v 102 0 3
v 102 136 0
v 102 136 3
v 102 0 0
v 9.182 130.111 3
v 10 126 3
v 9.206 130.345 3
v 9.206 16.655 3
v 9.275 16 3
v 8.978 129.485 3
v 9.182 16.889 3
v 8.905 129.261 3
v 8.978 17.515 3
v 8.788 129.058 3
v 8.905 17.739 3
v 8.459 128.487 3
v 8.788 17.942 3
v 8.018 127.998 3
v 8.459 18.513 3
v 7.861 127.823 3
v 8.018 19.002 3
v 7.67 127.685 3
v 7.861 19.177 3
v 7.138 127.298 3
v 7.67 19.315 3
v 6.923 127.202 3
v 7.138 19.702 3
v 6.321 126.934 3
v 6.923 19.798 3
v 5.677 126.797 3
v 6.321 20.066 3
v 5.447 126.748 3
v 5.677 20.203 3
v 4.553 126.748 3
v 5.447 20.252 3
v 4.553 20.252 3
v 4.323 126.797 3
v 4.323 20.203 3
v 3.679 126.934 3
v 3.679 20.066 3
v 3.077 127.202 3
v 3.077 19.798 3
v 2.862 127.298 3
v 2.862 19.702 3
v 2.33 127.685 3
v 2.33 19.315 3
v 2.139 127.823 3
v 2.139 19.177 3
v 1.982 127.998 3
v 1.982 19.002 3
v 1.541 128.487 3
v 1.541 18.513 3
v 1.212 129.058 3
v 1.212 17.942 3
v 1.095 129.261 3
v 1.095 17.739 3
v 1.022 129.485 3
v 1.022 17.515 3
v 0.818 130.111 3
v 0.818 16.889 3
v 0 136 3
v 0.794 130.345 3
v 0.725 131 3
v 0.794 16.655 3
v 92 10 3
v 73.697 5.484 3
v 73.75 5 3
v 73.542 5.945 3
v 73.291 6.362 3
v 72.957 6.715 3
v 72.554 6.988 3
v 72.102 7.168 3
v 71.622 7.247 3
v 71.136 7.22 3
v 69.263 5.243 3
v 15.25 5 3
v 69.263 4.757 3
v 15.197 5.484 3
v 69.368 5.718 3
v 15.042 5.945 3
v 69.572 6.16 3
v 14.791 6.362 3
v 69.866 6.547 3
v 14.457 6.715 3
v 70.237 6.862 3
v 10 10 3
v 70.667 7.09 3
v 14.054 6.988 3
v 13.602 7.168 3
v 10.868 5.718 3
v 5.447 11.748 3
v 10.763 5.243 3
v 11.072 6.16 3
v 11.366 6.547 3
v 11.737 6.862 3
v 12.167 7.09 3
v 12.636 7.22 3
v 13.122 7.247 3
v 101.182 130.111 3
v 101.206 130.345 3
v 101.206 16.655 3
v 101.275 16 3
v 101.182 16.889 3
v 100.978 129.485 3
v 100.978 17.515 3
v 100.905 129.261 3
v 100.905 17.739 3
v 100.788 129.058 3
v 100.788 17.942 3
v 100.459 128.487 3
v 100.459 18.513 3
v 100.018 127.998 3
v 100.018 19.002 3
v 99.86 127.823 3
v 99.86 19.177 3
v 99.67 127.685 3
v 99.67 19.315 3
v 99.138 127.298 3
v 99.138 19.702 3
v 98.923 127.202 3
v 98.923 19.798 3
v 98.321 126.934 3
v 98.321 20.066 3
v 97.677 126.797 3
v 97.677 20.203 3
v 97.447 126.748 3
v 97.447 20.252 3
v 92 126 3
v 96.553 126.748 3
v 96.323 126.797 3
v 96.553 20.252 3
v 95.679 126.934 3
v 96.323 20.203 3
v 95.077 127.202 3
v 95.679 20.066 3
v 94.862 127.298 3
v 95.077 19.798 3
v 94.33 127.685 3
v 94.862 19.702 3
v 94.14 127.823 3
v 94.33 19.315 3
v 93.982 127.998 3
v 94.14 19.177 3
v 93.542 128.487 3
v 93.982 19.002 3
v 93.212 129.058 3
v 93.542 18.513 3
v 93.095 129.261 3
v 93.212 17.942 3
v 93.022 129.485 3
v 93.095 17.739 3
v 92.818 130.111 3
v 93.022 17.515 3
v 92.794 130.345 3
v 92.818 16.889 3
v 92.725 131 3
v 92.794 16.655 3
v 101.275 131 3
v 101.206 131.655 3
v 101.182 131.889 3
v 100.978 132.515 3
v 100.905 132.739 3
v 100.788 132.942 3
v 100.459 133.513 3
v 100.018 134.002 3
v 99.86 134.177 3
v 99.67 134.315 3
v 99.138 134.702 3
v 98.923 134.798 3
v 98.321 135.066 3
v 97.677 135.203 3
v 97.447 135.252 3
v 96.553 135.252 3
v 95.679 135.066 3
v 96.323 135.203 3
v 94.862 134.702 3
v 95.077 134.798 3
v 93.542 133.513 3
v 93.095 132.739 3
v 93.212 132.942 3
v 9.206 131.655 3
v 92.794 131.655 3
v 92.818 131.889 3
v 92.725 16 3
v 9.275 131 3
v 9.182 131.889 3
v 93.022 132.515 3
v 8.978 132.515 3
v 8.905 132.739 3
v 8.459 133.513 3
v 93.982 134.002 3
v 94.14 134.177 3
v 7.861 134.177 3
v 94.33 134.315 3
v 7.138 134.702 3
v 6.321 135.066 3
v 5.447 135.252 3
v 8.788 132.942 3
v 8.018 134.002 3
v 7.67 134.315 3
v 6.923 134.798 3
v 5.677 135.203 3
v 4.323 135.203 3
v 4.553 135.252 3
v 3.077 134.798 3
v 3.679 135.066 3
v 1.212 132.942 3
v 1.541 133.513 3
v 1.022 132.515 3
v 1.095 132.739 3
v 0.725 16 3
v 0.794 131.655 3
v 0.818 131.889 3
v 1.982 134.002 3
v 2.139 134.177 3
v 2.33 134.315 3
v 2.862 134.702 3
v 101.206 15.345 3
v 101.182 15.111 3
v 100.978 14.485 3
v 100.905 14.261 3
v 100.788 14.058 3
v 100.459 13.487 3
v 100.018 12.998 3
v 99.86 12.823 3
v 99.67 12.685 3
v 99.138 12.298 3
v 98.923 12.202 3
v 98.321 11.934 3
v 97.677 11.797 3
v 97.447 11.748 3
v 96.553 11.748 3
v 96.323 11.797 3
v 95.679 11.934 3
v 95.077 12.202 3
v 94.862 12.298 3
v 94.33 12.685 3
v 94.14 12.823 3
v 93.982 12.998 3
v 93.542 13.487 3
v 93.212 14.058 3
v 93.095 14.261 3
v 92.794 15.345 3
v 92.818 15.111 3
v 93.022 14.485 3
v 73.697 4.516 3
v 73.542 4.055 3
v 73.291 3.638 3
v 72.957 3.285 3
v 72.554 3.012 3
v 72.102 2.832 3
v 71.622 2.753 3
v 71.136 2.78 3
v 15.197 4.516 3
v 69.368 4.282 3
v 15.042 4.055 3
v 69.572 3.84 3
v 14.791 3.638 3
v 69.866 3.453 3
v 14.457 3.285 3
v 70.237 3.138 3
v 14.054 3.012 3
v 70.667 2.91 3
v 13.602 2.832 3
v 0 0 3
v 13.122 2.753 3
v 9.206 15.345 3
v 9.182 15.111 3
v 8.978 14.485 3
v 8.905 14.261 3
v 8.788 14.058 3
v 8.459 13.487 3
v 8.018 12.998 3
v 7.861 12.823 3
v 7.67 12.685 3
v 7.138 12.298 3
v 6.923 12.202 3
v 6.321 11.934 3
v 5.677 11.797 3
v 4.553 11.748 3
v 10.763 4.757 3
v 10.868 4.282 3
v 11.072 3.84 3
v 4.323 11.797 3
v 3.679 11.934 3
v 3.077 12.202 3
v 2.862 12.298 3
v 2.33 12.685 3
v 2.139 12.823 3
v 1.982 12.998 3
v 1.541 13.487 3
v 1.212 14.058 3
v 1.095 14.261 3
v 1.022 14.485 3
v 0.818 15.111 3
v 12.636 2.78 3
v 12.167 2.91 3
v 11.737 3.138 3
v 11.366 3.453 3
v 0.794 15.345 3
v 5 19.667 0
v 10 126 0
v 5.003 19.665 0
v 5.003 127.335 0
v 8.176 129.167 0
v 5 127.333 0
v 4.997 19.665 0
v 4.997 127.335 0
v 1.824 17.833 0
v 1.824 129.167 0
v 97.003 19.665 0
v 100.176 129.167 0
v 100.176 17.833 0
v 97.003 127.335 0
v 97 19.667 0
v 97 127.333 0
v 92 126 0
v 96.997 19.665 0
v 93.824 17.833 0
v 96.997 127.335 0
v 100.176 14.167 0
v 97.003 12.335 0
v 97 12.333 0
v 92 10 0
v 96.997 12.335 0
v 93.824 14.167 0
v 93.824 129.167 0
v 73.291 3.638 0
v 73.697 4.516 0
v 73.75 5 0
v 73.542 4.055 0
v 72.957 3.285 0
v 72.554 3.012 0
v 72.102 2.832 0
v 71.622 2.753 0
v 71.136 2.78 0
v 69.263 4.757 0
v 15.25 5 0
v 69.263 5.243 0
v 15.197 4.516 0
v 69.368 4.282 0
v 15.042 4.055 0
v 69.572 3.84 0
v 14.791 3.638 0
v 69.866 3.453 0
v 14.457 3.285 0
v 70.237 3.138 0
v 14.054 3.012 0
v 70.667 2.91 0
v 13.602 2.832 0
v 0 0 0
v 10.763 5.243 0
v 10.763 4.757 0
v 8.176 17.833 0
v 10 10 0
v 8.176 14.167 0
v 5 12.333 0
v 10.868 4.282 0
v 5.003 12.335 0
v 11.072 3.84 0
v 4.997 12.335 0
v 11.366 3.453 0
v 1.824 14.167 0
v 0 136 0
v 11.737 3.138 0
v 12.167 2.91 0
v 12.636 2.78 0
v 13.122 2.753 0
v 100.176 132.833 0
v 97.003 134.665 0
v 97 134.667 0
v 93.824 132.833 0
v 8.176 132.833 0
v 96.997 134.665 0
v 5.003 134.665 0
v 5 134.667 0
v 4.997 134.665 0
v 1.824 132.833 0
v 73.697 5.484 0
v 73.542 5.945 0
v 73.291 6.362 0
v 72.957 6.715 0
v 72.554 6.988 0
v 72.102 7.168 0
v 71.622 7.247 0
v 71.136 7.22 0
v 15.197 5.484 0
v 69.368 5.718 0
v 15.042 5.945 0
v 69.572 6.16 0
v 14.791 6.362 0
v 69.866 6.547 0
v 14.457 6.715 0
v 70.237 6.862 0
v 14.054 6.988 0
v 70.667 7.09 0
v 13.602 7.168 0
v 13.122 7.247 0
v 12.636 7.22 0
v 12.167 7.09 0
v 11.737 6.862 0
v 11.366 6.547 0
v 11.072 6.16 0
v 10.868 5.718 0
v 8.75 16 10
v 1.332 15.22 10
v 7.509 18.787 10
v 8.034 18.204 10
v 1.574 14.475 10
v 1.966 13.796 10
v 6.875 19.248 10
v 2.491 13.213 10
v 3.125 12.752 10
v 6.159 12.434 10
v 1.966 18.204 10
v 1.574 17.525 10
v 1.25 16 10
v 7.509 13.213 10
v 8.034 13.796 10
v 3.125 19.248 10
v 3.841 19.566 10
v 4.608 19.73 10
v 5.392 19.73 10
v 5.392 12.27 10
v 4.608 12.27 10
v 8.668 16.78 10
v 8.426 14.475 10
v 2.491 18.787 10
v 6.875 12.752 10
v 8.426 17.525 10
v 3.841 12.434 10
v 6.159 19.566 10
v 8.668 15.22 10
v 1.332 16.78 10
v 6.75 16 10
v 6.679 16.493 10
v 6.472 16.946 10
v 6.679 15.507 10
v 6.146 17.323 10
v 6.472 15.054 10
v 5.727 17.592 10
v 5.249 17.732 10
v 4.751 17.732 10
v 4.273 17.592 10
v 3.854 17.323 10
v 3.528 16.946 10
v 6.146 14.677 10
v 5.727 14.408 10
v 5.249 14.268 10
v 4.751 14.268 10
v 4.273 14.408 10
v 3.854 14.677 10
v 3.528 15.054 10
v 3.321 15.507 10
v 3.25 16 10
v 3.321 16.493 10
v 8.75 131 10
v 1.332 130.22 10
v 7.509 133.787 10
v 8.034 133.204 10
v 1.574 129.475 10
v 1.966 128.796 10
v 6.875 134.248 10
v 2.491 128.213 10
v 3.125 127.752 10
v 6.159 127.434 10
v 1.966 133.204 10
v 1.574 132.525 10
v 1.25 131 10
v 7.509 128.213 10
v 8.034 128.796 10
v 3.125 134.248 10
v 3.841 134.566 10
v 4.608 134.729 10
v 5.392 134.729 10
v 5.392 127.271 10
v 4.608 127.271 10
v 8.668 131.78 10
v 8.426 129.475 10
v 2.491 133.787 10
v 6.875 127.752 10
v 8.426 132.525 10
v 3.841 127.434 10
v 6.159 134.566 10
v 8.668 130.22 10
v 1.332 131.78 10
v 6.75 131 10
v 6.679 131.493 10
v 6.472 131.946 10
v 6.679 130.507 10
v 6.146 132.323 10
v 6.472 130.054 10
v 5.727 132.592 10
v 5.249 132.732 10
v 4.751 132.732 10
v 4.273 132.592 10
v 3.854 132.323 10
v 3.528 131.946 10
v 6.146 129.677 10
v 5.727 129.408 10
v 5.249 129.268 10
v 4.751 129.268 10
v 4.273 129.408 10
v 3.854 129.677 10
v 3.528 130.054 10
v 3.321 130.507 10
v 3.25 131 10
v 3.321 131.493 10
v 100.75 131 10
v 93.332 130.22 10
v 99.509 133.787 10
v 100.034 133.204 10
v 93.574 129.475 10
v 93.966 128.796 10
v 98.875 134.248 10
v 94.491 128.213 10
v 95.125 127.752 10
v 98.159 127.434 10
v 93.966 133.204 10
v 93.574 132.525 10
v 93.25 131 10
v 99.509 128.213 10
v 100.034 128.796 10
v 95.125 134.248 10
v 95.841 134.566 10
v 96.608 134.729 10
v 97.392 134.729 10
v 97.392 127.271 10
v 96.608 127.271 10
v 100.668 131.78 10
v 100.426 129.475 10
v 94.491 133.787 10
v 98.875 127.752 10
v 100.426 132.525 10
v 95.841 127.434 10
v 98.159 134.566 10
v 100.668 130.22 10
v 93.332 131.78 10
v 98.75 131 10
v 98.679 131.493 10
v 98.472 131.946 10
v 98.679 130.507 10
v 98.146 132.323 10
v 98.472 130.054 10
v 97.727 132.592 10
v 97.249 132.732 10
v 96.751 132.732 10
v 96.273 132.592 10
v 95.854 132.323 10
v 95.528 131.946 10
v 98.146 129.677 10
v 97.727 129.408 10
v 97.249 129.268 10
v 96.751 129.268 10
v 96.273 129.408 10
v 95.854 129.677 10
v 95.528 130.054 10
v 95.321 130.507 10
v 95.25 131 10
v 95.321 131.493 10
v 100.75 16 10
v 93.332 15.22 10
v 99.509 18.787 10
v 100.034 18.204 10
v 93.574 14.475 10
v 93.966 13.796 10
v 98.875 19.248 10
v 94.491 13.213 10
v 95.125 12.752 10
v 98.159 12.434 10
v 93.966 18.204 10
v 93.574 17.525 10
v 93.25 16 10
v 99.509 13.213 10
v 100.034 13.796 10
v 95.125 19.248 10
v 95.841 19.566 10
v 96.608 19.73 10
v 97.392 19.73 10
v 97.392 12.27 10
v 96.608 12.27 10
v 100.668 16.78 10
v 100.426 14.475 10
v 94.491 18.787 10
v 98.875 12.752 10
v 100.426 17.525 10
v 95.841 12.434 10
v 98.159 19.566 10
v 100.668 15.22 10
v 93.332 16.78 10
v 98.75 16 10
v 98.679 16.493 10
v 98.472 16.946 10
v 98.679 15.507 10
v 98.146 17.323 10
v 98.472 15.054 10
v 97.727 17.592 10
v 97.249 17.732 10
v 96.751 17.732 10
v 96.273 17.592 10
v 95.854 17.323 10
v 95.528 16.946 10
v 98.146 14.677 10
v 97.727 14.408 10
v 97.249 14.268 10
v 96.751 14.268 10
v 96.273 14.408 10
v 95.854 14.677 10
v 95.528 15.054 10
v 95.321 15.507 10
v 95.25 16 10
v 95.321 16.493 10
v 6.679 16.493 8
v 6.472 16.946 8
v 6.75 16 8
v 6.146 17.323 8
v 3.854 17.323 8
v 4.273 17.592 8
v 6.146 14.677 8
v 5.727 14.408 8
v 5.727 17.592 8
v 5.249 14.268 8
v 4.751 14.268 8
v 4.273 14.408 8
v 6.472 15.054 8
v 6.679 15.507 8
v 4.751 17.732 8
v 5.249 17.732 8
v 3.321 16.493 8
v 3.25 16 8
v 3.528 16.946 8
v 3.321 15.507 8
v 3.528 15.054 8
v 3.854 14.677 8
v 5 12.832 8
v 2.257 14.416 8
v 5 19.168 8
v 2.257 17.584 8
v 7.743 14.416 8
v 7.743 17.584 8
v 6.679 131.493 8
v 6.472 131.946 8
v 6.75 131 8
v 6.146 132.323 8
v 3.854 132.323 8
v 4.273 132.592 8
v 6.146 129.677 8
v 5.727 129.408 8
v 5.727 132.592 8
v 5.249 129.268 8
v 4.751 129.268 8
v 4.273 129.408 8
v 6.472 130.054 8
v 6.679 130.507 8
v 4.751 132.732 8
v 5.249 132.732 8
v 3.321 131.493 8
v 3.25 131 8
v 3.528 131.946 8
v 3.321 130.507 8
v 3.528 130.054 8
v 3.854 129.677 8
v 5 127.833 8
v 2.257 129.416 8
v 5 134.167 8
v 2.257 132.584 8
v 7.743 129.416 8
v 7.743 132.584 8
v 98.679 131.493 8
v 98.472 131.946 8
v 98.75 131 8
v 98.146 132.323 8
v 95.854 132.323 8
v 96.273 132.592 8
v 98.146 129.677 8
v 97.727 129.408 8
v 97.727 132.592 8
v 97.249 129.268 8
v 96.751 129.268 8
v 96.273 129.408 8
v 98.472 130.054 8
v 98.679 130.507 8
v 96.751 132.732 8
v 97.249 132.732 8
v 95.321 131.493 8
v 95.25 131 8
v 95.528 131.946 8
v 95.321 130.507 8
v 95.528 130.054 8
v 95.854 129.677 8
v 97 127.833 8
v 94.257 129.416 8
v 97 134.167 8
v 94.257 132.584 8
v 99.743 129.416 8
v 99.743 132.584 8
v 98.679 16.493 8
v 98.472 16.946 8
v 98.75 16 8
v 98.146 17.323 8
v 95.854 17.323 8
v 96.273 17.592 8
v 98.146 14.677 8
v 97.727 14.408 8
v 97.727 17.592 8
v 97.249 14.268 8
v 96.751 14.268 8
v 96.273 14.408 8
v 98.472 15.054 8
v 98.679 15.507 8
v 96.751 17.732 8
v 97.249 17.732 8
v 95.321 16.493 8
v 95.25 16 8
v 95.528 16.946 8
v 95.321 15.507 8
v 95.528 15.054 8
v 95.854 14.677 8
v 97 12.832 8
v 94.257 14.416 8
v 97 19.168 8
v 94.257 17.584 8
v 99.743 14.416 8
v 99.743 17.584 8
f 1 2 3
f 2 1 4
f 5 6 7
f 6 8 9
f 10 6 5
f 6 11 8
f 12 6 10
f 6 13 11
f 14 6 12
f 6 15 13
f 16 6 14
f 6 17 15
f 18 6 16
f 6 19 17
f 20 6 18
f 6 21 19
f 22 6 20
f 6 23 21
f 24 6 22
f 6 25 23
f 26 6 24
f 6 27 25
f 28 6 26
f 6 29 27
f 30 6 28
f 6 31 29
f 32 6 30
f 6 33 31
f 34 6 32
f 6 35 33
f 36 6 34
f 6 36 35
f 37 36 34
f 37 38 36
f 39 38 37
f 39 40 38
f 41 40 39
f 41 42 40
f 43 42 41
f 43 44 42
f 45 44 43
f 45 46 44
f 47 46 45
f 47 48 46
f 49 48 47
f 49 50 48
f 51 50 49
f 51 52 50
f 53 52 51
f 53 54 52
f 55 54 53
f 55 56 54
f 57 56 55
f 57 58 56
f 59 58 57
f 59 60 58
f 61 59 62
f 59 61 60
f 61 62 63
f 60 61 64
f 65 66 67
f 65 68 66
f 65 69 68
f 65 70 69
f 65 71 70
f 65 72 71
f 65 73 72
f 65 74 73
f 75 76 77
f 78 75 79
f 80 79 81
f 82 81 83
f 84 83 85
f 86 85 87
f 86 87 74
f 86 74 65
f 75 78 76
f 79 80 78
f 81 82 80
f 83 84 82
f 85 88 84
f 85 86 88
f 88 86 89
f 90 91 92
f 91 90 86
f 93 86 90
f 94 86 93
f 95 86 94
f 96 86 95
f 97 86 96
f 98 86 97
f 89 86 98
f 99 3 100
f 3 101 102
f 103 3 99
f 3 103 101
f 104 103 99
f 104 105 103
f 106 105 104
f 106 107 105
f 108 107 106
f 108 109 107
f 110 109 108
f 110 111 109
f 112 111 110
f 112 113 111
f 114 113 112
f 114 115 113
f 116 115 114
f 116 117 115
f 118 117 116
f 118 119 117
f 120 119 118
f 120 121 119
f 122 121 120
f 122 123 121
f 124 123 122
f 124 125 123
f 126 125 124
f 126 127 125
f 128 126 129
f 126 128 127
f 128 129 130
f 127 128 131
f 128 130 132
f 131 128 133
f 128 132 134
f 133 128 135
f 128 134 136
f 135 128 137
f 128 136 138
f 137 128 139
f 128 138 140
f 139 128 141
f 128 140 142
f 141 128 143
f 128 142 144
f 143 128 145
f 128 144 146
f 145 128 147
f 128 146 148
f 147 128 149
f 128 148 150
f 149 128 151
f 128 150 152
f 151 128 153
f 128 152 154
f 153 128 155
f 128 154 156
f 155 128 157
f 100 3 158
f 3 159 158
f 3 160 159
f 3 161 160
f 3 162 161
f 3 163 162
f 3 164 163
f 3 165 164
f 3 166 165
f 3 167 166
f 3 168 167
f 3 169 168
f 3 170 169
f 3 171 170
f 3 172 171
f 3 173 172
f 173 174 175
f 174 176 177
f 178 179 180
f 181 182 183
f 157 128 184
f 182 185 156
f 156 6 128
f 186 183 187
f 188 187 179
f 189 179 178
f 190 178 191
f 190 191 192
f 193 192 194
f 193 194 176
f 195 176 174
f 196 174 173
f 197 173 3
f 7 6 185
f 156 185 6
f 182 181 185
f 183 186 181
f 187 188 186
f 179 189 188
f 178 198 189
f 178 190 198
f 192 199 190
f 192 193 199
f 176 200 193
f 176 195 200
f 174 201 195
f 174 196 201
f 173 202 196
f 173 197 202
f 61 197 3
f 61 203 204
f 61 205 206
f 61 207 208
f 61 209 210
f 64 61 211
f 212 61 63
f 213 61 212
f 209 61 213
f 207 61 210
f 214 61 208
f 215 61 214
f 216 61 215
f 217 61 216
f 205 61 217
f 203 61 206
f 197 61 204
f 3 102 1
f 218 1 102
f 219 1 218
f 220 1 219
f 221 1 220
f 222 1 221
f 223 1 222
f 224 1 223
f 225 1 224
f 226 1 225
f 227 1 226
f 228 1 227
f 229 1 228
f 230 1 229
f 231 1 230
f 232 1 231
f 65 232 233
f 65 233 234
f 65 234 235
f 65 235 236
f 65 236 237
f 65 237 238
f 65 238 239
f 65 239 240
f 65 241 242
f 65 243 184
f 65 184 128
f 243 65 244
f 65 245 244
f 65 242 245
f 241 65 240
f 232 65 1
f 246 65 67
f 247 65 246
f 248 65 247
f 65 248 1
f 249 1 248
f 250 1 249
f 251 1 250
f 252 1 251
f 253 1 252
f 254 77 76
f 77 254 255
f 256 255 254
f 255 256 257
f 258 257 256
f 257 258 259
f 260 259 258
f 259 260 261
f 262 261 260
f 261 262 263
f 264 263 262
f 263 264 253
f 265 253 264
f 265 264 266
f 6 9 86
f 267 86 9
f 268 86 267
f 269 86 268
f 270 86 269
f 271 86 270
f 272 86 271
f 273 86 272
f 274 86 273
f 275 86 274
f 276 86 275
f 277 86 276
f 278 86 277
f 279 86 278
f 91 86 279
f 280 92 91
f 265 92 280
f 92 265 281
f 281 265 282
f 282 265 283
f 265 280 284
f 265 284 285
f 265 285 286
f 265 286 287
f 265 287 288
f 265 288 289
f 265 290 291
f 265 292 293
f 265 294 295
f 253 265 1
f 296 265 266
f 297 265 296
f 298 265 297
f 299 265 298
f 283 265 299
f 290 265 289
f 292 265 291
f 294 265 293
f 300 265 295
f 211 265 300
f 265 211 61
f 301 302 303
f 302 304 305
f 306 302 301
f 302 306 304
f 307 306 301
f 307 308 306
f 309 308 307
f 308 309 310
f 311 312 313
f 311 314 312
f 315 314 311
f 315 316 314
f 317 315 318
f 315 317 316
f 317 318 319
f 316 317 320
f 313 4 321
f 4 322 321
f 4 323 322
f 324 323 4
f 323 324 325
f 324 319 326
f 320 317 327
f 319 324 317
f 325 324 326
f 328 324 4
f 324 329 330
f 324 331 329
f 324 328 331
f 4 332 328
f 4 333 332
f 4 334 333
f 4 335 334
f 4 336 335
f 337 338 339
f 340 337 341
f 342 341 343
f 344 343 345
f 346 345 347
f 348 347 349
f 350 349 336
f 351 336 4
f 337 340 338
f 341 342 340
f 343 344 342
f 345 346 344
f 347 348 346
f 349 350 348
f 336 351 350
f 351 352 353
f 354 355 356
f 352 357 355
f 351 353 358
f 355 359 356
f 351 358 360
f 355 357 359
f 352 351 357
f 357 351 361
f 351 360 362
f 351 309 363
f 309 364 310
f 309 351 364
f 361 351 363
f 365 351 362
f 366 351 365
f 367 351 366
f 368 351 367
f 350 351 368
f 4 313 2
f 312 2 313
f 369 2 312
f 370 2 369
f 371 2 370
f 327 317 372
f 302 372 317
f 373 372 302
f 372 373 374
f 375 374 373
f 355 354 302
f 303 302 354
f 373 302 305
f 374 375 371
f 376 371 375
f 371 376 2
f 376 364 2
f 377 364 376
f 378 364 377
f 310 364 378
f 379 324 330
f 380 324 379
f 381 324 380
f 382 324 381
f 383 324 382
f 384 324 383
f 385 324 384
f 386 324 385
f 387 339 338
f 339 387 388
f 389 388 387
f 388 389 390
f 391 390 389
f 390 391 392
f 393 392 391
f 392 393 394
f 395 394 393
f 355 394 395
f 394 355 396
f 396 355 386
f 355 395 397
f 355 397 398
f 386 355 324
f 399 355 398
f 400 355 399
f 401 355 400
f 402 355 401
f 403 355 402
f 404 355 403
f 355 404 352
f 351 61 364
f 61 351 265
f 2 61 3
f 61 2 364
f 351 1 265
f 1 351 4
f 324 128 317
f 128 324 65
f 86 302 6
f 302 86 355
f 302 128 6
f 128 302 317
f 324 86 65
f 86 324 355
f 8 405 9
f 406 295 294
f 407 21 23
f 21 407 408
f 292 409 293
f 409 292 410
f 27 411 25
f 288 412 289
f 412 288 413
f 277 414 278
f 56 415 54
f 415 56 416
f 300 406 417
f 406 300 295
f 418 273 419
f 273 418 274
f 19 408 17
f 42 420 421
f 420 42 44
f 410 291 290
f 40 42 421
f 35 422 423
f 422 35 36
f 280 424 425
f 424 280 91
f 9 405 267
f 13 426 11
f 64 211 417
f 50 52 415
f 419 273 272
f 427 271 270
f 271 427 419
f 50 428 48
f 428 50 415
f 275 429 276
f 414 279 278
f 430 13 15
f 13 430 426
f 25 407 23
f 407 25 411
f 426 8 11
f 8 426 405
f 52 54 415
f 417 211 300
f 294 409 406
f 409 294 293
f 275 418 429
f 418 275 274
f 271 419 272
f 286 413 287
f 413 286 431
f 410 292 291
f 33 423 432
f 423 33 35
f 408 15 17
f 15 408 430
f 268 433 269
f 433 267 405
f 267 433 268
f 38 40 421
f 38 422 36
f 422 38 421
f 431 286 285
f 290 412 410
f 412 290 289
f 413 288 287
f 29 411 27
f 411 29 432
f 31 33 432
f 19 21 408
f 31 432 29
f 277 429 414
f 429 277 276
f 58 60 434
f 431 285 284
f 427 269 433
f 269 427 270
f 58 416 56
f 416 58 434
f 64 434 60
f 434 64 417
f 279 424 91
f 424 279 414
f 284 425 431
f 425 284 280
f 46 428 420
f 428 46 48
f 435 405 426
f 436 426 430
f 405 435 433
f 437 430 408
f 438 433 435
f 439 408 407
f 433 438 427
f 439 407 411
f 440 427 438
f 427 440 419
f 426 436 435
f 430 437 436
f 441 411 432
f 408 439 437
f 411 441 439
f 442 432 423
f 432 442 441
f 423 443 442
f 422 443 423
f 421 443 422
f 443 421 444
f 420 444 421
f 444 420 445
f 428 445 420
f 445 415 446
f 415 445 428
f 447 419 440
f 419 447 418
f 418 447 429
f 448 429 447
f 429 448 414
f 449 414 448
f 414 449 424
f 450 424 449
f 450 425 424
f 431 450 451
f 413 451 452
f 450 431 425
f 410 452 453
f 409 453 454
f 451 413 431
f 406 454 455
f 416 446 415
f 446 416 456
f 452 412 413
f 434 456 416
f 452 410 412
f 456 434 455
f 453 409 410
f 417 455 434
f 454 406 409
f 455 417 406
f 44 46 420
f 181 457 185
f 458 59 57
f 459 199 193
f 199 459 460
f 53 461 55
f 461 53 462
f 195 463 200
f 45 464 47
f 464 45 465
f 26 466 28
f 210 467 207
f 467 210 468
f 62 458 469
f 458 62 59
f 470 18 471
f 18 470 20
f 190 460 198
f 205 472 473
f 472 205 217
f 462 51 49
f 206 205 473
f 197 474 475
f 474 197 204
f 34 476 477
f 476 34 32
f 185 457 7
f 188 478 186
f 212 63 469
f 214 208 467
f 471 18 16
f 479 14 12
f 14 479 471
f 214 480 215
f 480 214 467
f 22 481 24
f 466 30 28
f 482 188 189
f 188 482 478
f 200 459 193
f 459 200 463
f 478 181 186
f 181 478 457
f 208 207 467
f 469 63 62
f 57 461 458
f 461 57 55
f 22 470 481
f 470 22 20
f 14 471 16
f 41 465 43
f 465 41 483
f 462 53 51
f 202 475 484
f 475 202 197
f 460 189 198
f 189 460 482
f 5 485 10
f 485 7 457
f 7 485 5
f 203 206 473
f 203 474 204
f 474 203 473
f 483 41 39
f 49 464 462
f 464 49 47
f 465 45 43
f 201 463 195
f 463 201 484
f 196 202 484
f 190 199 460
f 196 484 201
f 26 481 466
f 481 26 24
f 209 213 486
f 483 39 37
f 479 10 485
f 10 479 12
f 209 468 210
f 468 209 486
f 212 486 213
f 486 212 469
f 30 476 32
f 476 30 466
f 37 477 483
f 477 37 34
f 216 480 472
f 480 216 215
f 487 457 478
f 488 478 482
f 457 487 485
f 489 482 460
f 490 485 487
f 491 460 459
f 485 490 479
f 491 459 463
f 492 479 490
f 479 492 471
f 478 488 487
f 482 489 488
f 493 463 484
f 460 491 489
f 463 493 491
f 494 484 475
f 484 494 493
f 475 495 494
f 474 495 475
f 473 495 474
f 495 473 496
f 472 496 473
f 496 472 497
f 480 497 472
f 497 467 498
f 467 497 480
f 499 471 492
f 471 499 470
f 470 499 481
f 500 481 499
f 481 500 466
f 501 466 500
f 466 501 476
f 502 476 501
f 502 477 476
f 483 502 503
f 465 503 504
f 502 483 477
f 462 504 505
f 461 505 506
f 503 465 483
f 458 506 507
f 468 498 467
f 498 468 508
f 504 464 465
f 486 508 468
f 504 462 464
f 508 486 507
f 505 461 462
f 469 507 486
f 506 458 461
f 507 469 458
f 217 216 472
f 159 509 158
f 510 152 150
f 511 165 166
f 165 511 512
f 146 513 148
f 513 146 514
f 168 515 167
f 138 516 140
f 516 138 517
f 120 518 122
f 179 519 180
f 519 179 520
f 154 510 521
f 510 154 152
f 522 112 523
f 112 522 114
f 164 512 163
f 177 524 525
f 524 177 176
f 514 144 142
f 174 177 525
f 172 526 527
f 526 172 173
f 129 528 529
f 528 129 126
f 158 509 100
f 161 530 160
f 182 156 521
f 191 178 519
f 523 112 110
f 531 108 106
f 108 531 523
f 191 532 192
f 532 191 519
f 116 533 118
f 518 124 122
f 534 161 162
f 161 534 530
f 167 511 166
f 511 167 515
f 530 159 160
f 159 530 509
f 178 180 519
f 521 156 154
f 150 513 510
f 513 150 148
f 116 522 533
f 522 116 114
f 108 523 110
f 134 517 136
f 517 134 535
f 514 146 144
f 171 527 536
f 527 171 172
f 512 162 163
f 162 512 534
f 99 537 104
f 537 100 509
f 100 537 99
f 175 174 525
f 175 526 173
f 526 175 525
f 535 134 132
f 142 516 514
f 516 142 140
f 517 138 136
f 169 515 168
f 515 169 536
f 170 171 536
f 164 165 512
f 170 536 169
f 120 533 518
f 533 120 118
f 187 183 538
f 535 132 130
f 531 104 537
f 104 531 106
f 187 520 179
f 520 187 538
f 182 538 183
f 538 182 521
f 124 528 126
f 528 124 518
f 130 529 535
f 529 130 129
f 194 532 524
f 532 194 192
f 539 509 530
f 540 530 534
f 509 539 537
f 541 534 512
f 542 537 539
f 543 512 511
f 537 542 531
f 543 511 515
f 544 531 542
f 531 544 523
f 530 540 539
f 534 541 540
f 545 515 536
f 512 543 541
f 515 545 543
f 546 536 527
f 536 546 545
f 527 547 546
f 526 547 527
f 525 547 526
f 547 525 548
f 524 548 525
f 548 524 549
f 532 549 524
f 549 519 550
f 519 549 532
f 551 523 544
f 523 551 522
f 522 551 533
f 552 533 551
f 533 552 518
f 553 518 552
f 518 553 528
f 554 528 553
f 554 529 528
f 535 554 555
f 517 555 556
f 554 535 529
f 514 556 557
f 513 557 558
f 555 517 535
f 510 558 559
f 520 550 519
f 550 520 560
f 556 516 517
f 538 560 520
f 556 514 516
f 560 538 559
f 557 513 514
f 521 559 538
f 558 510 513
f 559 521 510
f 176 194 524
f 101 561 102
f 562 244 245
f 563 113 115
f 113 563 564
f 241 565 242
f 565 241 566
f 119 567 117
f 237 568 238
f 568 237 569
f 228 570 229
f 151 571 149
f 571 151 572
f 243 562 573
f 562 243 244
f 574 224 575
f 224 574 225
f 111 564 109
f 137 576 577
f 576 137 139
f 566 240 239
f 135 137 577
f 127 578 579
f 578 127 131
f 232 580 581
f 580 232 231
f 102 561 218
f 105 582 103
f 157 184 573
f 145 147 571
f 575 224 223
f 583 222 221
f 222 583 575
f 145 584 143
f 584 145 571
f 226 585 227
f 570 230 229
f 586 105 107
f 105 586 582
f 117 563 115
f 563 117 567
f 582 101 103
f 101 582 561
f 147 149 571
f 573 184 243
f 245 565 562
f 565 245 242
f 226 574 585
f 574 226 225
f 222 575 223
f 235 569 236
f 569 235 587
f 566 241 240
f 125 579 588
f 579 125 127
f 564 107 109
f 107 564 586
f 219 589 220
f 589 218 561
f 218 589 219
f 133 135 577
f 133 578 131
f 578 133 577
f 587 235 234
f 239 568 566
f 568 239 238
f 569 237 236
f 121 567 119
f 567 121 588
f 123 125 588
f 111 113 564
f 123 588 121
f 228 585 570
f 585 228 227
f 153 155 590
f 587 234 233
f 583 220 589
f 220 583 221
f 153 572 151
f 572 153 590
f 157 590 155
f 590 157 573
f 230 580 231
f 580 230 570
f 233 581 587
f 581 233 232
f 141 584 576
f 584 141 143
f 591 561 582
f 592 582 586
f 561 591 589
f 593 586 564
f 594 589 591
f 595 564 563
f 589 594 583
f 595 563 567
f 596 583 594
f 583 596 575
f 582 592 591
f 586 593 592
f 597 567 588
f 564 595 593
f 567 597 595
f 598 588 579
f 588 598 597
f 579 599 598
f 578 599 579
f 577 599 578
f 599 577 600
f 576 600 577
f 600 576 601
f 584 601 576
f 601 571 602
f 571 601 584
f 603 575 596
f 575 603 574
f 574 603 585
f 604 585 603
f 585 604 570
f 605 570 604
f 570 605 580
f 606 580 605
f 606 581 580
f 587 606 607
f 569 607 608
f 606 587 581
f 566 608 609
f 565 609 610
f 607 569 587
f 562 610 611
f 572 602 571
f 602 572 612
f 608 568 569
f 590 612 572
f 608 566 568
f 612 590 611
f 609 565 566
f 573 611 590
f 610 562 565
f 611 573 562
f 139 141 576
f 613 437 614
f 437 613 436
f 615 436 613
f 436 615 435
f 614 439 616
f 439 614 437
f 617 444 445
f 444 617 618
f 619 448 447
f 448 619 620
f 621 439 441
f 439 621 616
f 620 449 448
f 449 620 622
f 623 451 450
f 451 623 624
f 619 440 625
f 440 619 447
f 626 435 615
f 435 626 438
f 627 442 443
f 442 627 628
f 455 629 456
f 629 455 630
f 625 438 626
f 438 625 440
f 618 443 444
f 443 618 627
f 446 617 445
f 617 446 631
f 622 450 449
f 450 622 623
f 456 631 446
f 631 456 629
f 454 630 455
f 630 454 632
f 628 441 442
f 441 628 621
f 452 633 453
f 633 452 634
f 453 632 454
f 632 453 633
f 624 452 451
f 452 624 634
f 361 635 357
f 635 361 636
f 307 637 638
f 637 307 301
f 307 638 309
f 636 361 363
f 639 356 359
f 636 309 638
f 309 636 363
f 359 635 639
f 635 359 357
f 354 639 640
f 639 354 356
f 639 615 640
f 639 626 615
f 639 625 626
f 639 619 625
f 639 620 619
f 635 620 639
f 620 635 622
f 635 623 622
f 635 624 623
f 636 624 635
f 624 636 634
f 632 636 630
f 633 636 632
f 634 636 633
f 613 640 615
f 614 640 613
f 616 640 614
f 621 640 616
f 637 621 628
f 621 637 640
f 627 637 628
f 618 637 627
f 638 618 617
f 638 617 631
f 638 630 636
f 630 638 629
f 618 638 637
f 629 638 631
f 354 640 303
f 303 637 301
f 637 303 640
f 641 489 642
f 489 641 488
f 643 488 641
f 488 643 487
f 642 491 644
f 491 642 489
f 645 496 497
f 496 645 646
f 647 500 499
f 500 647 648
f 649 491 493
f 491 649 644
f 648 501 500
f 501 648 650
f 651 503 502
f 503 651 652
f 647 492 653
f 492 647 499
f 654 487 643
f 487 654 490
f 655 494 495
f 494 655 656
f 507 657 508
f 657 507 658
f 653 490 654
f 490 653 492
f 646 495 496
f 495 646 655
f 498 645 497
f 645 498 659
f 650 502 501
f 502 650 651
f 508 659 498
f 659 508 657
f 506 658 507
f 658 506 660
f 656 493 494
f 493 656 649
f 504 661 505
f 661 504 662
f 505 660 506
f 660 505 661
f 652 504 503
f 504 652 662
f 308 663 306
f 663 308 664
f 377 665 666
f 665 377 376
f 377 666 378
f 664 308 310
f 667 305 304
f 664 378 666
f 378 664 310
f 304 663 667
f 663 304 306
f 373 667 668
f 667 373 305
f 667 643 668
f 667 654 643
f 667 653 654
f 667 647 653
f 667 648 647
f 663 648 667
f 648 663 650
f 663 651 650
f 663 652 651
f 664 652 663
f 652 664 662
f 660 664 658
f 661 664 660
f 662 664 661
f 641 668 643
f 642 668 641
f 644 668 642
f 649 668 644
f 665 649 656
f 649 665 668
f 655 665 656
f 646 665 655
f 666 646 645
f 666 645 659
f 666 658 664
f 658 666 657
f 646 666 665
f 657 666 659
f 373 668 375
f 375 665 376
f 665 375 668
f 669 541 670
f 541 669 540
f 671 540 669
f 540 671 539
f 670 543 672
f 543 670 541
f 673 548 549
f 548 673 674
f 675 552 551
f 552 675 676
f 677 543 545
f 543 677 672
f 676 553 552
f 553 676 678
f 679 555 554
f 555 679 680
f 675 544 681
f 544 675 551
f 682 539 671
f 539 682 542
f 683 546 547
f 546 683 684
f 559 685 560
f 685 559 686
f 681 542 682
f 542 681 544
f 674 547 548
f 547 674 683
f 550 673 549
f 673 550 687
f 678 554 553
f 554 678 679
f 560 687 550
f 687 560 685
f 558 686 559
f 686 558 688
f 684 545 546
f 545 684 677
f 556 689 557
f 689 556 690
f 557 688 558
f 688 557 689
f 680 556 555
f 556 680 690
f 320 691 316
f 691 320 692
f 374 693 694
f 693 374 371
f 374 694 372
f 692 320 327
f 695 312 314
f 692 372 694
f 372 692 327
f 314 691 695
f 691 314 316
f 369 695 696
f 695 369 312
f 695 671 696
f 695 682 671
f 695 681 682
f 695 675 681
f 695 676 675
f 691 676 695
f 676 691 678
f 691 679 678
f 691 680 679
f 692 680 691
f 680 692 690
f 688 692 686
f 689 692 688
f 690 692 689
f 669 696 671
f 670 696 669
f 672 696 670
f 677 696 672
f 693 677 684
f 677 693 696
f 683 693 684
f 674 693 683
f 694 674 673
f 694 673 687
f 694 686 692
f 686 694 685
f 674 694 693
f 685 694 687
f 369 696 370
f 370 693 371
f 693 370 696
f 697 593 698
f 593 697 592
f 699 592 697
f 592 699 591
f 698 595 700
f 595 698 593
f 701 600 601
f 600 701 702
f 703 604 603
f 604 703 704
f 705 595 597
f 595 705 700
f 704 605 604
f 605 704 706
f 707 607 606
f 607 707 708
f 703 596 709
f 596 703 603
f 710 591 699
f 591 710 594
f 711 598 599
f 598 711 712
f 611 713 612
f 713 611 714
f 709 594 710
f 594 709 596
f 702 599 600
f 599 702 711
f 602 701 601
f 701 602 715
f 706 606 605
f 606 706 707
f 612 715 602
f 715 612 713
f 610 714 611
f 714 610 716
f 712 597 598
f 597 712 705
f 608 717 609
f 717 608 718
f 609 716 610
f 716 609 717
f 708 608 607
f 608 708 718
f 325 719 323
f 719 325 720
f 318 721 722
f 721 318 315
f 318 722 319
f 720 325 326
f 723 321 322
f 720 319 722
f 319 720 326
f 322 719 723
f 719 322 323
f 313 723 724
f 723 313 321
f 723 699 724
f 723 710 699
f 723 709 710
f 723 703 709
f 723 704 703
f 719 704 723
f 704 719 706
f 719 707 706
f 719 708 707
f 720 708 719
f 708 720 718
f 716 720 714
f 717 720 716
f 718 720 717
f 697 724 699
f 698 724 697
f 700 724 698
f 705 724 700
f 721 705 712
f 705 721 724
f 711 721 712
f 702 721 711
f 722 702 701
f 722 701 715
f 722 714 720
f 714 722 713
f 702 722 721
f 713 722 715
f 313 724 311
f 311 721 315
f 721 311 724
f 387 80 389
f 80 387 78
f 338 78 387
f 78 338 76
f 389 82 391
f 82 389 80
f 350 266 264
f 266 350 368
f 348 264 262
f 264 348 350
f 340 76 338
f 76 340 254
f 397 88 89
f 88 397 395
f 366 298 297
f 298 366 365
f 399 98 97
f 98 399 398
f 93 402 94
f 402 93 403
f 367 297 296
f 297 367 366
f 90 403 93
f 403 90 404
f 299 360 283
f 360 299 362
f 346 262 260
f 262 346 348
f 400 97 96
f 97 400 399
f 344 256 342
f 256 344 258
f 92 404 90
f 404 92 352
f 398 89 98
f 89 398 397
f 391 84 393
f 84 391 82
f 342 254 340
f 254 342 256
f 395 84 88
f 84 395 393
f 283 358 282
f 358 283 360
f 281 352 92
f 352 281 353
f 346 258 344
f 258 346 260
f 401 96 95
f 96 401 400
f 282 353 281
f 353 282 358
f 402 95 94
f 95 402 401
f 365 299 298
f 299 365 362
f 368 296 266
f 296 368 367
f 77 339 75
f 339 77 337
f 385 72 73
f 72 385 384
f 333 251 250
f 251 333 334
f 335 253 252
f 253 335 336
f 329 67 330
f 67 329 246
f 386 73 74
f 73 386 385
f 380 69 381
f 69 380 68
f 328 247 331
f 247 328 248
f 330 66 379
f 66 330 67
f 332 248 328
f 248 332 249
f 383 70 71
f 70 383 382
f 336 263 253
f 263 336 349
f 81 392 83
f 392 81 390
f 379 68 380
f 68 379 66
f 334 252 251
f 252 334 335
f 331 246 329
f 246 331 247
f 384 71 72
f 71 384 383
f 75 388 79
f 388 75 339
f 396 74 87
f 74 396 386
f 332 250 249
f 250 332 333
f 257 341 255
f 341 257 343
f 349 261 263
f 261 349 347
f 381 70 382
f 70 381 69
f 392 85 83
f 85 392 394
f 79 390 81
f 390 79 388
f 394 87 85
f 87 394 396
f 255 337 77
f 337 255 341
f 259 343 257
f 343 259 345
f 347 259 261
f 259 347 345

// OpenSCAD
// Holder for Duet2 Maestro board on side of M2 printer
//
// Copyright (C) 2020  Kevin O'Connor <kevin@koconnor.net>
//
// This file may be distributed under the terms of the GNU GPLv3 license.

// M2 side screw locations:
//  z=11.5mm: +0mm, +145mm; z=41: +10mm, +67.5mm; z=70mm: +96mm, +145mm
// screw hole is 4.6mm wide; m4 screw is 3.86mm wide; head is 6.96mm dia
// m3 hex nut is 5.4mm across; m3 screw is 2.88mm wide; head is 5.38mm dia

// Duet board is 123x100mm. Screws at:
//  4,4 ; 4,119 ; 96,119 ; 96,4

$fs = .5;
plate_height = 3;
plate_offset_x = 1;
plate_offset_y = 12;
plate_width = 100 + 2 * plate_offset_x;
plate_length = 123 + plate_offset_y + 1;
plate_border = 10;
standoff_height = 10;
standoff_top_width = 7.5;
standoff_bot_width = 9;
standoff_screw_dia = 3.5;
standoff_screw_hex = 6.235 + .1;
standoff_screw_positions = [ [4, 4], [4, 119], [96, 119], [96, 4] ];
printer_screw_dia = 4.5;
printer_screw_positions = [ [13, 5], [13 + 70 - 11.5, 5],
                            [13 + 41 - 11.5, 5 + 145 - 67.5] ];
CUT = 0.01;

//
// Back Plate
//

module back_plate() {
    module plate() {
        difference() {
            cube(size=[plate_width, plate_length, plate_height]);
            translate([plate_border, plate_border, -CUT])
                cube(size=[plate_width - 2*plate_border,
                           plate_length - 2*plate_border, plate_height + 2*CUT]);
        }
    }

    module screw_standoff(pos) {
        translate(pos)
            translate([plate_offset_x, plate_offset_y])
                cylinder(h=standoff_height, d1=standoff_bot_width,
                         d2=standoff_top_width);
    }

    module screwcut_standoff(pos) {
        module hex() {
            rotate([0, 0, 90])
                cylinder(h=standoff_height - 2 + CUT, d1=standoff_screw_hex + 1,
                         d2=standoff_screw_hex, $fn=6);
        }
        translate(pos)
            translate([plate_offset_x, plate_offset_y, -CUT]) {
                cylinder(h=standoff_height + 2*CUT, d=standoff_screw_dia);
                hex();
            }
    }

    module screwcut_printer(pos) {
        translate(pos)
            translate([0, 0, -CUT])
                cylinder(h=plate_height + 2*CUT, d=printer_screw_dia);
    }

    module full_plate() {
        plate();
        for (pos=standoff_screw_positions)
             screw_standoff(pos);
    }

    difference() {
        full_plate();
        for (pos=standoff_screw_positions)
             screwcut_standoff(pos);
        for (pos=printer_screw_positions)
             screwcut_printer(pos);
    }
}

//
// Object selection
//

back_plate();
